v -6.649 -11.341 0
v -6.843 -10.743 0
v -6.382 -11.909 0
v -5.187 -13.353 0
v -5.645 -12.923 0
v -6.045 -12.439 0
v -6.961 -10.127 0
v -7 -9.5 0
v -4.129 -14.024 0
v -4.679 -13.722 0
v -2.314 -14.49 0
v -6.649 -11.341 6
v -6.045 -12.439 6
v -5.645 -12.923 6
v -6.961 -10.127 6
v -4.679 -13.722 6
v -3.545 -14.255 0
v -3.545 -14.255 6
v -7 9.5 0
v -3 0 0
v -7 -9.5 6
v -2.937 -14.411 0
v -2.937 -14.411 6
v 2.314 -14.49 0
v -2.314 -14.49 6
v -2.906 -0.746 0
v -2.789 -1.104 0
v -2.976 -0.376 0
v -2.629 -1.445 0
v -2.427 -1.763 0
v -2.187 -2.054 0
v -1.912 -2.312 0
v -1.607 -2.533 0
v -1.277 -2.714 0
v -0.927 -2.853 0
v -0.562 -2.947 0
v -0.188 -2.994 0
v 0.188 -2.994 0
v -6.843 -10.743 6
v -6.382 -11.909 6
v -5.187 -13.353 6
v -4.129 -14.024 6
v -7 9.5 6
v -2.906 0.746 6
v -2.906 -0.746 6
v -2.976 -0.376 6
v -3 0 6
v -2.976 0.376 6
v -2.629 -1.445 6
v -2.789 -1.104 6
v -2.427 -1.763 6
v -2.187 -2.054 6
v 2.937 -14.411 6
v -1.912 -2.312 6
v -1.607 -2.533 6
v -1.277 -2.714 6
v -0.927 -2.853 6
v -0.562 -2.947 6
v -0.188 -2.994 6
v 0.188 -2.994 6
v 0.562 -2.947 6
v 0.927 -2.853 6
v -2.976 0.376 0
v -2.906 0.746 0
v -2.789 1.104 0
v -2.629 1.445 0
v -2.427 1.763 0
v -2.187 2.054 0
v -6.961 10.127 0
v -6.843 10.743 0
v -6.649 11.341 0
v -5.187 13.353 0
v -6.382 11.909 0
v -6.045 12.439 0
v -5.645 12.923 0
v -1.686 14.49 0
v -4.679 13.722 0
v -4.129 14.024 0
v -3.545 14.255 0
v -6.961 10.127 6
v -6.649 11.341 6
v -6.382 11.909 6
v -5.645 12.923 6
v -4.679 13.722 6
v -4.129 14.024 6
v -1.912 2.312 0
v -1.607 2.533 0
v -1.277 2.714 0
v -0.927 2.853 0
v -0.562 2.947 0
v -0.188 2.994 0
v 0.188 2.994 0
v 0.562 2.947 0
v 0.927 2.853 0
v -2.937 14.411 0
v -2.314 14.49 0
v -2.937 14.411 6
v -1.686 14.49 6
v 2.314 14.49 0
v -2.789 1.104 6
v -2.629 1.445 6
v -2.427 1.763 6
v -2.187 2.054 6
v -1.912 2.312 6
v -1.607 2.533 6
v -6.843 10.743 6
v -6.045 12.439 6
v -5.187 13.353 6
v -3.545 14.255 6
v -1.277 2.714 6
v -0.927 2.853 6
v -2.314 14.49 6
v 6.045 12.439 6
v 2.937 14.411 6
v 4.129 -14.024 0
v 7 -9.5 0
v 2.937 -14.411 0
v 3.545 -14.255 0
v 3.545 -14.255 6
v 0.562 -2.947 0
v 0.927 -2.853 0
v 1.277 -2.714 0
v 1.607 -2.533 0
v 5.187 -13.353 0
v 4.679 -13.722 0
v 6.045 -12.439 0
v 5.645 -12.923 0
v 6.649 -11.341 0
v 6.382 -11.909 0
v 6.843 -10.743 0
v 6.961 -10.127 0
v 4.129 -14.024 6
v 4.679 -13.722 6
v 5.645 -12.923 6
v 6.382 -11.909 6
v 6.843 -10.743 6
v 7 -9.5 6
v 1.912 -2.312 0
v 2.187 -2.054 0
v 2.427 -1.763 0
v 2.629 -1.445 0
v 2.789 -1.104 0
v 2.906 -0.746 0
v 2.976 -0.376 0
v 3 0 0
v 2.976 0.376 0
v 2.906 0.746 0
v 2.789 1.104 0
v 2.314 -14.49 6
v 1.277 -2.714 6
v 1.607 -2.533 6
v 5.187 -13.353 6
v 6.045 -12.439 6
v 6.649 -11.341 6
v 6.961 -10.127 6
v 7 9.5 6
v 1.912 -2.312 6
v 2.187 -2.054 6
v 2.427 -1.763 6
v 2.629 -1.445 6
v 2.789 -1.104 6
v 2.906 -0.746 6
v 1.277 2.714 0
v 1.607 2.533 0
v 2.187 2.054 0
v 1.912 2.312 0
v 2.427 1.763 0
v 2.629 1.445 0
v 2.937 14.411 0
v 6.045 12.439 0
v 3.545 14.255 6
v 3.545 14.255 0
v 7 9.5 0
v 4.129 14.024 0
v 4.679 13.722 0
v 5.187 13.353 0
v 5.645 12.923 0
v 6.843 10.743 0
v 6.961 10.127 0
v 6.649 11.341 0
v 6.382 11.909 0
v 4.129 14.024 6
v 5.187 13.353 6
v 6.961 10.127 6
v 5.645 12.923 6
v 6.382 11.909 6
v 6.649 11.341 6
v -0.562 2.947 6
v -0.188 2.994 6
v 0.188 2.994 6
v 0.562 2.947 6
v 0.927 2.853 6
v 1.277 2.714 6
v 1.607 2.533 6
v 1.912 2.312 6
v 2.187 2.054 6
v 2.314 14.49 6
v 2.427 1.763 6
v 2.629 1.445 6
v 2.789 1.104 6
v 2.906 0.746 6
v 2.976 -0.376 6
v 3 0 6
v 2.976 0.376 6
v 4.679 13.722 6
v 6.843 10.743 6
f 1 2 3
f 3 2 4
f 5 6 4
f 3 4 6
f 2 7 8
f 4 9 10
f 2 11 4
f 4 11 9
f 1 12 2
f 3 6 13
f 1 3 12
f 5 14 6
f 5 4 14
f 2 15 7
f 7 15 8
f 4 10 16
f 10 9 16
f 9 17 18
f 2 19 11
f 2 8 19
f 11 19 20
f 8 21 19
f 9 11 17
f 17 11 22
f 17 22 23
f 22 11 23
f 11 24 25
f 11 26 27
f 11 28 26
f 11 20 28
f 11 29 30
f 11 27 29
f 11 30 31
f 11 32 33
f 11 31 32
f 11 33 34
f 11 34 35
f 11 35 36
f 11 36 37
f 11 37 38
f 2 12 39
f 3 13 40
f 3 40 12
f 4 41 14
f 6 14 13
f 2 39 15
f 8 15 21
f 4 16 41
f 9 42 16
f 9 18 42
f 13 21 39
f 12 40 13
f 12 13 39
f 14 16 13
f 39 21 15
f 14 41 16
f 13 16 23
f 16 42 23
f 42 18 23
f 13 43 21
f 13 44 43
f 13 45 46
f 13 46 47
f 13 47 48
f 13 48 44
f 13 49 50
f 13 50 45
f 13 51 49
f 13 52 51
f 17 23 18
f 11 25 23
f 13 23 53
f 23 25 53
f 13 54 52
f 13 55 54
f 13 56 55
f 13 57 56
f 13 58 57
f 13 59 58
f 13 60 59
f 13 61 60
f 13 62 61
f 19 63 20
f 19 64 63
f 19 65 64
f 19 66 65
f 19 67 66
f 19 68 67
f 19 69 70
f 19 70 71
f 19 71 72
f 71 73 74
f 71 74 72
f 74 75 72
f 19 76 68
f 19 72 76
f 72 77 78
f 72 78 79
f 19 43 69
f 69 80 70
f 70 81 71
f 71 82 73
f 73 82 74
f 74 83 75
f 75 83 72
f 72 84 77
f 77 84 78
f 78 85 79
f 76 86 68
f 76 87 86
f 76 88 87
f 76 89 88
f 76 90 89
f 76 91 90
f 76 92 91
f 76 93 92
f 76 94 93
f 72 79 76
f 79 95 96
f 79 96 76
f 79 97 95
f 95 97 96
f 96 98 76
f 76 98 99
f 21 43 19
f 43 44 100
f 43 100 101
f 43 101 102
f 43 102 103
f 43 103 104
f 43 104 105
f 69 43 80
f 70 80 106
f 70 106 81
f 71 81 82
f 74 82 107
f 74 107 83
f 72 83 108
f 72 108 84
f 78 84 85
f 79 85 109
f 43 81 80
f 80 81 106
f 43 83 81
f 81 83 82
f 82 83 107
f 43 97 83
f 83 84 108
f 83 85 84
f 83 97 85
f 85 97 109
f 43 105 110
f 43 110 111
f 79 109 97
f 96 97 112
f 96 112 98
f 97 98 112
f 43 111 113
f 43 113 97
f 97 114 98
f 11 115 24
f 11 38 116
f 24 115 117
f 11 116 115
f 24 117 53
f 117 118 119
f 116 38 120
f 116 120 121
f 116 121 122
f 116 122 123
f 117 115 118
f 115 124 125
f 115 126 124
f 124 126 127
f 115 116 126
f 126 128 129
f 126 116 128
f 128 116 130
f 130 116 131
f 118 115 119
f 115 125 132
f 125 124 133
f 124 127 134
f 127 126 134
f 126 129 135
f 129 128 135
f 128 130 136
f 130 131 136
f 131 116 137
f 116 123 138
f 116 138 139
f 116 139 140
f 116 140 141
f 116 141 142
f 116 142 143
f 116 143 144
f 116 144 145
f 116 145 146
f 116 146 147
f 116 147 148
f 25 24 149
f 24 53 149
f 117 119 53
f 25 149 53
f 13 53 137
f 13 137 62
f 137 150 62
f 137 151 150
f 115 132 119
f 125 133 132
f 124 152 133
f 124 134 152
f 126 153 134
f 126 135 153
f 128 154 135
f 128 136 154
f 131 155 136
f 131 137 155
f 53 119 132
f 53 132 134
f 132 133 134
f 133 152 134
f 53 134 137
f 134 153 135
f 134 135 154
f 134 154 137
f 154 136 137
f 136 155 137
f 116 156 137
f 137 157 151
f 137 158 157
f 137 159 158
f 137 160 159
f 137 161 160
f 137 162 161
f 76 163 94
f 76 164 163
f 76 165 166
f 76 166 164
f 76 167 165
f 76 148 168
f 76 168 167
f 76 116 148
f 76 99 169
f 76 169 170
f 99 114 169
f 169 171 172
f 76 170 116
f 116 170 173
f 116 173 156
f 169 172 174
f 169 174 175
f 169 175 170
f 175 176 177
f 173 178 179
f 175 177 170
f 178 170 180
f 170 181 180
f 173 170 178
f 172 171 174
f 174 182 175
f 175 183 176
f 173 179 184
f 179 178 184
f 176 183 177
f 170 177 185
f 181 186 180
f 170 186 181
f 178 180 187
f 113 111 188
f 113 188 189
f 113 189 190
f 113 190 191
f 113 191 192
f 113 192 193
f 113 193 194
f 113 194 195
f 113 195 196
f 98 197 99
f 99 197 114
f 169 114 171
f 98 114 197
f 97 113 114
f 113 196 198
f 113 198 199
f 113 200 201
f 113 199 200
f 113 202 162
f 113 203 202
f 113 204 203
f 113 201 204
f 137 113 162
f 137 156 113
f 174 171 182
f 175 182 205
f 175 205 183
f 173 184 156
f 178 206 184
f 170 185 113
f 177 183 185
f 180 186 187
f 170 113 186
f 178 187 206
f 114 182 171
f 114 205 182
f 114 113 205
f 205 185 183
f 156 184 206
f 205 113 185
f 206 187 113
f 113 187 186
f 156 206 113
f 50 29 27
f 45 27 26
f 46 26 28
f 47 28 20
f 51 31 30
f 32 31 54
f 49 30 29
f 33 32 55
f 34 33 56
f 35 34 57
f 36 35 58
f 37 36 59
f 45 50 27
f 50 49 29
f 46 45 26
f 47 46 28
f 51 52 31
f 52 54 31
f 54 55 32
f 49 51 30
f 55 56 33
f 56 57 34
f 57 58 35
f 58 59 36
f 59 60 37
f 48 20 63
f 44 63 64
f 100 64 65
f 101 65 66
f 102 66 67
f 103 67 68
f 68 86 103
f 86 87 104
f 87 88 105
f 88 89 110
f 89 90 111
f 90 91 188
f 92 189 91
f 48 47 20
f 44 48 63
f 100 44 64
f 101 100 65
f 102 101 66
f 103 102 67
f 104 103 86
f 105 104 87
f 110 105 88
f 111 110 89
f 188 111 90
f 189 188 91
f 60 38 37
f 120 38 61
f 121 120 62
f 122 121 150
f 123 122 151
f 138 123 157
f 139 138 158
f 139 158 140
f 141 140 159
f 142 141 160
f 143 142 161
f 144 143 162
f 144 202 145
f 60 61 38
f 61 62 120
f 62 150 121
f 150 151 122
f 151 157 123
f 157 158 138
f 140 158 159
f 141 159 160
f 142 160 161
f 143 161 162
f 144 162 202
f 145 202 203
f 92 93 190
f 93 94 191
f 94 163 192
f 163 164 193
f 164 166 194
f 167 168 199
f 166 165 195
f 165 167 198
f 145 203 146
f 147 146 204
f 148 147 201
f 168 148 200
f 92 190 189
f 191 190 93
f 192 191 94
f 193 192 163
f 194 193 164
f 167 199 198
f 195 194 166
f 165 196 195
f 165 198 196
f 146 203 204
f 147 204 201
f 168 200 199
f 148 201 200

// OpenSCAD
$fn = 50;

difference() {
	union() {
		hull() {
			translate(v = [-2.0, 9.5, 0]) {
				cylinder(h = 6, r = 5);
			}
			translate(v = [2.0, 9.5, 0]) {
				cylinder(h = 6, r = 5);
			}
			translate(v = [-2.0, -9.5, 0]) {
				cylinder(h = 6, r = 5);
			}
			translate(v = [2.0, -9.5, 0]) {
				cylinder(h = 6, r = 5);
			}
		}
	}
	union() {
		cylinder(h = 6, r = 3.0);
	}
}
